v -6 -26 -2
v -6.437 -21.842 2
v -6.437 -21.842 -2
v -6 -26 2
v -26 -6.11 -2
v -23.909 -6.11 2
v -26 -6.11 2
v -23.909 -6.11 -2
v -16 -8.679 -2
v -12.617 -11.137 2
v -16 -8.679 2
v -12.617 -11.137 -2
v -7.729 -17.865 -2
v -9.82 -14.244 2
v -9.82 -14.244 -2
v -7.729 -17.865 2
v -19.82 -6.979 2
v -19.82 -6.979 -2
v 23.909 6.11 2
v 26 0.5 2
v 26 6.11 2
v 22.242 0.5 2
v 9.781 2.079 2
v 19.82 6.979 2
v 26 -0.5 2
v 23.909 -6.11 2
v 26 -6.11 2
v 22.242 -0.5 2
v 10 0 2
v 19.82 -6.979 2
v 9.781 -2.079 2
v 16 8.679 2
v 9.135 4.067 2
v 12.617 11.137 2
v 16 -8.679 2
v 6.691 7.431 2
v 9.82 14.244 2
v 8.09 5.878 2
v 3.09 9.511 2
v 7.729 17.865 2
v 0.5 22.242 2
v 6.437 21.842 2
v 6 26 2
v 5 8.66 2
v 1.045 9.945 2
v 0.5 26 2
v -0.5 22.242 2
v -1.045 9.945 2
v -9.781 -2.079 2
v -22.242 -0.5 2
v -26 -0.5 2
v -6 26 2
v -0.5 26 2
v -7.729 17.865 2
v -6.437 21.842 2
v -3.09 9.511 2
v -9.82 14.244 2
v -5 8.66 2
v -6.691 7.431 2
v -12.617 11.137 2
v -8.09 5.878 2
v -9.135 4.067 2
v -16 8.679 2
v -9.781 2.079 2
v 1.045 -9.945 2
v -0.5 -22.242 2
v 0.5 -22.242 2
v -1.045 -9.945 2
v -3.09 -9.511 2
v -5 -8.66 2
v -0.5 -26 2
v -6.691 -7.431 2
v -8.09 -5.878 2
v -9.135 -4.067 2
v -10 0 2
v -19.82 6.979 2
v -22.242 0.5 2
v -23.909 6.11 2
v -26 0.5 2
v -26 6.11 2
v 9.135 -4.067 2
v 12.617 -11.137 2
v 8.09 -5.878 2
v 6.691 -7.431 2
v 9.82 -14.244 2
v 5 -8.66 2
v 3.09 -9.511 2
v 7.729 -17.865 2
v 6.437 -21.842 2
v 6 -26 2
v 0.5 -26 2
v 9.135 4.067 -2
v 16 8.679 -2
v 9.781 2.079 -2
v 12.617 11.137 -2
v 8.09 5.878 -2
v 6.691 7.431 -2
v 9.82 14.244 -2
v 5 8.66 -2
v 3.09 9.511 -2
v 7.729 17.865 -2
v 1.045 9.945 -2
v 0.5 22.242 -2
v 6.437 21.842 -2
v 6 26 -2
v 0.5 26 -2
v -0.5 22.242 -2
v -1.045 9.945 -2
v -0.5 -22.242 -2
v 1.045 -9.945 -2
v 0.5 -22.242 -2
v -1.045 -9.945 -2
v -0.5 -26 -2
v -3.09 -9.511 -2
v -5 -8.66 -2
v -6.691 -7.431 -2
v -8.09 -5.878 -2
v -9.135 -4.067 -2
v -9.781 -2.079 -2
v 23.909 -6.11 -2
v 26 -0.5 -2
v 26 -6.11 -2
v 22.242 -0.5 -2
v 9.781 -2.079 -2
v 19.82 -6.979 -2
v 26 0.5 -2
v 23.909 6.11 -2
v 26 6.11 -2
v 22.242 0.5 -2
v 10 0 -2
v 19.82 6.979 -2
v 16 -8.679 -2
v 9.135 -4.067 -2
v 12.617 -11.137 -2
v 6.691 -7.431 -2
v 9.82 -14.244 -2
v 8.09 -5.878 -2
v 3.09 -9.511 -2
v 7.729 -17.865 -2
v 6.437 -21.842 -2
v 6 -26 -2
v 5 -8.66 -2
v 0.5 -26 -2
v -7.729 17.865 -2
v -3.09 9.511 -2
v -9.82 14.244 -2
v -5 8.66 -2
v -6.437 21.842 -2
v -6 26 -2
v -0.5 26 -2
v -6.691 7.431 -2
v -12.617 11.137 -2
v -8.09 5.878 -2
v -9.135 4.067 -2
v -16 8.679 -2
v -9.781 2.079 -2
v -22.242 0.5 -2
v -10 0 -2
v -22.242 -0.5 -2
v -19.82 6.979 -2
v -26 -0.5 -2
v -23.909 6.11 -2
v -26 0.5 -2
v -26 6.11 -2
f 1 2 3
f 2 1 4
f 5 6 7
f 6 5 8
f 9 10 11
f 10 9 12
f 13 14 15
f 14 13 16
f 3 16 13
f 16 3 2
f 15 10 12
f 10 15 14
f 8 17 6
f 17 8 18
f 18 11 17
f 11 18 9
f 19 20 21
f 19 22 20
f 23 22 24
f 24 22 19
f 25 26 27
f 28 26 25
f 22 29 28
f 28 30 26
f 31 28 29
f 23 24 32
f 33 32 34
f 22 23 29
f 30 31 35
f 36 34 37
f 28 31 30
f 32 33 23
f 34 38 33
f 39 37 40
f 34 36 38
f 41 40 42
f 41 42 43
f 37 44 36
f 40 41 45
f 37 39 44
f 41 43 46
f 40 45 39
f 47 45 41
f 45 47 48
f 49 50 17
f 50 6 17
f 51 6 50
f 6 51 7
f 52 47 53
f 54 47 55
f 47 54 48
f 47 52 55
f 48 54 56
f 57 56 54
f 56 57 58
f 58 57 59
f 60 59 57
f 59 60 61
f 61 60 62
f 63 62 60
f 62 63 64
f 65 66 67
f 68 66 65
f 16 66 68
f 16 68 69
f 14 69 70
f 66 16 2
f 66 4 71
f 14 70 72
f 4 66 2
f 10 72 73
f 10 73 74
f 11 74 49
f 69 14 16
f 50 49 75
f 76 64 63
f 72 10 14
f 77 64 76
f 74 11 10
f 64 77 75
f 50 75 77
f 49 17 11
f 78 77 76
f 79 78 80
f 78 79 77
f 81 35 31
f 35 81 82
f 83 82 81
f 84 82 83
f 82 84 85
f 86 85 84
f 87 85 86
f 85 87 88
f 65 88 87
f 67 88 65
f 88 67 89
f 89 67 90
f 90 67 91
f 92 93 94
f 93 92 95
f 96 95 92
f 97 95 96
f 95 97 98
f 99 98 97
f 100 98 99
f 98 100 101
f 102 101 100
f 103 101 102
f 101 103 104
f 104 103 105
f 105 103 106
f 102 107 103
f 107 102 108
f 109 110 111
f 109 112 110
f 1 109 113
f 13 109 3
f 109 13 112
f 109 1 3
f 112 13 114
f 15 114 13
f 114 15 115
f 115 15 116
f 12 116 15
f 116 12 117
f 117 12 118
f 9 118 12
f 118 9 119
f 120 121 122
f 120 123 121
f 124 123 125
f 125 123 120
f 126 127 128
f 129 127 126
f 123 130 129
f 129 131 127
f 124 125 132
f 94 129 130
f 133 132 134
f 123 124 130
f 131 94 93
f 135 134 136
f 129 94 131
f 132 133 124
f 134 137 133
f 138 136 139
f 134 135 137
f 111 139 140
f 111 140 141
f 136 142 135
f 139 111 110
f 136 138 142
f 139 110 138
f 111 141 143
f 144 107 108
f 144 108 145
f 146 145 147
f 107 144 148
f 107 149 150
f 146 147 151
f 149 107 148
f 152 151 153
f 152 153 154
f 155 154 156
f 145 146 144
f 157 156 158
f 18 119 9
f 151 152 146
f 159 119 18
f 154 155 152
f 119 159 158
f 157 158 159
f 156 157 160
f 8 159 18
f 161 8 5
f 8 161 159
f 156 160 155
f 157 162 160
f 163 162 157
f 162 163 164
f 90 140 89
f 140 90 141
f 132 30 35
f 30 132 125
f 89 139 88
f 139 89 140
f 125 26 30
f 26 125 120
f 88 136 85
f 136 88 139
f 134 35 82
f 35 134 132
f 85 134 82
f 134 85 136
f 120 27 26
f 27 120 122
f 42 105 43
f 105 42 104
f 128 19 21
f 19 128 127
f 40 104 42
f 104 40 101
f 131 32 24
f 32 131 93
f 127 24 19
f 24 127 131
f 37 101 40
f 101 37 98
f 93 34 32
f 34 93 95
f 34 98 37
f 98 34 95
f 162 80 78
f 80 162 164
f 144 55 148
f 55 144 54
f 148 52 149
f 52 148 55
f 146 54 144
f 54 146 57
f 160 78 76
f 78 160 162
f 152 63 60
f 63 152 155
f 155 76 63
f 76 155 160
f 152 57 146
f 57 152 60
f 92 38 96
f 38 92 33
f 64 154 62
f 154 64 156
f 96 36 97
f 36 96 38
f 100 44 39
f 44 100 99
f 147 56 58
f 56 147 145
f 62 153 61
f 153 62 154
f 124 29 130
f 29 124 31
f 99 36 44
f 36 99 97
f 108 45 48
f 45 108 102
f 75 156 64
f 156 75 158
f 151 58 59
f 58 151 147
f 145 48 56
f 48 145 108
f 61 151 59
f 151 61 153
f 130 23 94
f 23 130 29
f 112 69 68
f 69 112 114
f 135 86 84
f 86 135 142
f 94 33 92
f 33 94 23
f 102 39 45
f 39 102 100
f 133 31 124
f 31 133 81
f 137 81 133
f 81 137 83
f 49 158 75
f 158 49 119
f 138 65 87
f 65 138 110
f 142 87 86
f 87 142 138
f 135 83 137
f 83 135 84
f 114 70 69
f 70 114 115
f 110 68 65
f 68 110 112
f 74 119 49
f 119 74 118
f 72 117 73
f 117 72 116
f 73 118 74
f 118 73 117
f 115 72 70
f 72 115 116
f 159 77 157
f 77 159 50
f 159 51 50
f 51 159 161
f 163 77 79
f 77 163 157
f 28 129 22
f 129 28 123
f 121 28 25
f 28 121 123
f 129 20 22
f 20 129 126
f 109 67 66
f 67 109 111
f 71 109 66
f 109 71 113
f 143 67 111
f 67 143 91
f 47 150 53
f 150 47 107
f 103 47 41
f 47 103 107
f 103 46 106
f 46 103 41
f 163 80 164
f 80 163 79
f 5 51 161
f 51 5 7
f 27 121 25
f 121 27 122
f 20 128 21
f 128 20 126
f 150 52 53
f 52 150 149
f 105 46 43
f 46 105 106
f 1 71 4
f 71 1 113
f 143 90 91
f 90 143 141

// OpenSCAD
r = 20;
th = 4;
offset = -3;
hole_length = 4;


side = 2*r+3*th;

module piece()
{
difference(){

cube([side,side,th],center=true);

union(){
translate([-side/2,-side/2,0]) cylinder(h=th,r=r,center=true);

translate([side/2,-side/2,0]) cylinder(h=th,r=r,center=true);

translate([side/2,side/2,0]) cylinder(h=th,r=r,center=true);

translate([-side/2,side/2,0]) cylinder(h=th,r=r,center=true);

cylinder(h=th,r=r*0.5,center=true);

translate([(-side+hole_length)/1.98,0,0]) hole();

translate([(side-hole_length)/1.98,0,0]) hole();

translate([0,(-side+hole_length)/1.98,0]) rotate([0,0,90]) hole();

translate([0,(side-hole_length)/1.98,0]) rotate([0,0,90]) hole();

}
}


}

module hole()
{
	cube([hole_length,th+offset,th],center=true);
}

piece();
